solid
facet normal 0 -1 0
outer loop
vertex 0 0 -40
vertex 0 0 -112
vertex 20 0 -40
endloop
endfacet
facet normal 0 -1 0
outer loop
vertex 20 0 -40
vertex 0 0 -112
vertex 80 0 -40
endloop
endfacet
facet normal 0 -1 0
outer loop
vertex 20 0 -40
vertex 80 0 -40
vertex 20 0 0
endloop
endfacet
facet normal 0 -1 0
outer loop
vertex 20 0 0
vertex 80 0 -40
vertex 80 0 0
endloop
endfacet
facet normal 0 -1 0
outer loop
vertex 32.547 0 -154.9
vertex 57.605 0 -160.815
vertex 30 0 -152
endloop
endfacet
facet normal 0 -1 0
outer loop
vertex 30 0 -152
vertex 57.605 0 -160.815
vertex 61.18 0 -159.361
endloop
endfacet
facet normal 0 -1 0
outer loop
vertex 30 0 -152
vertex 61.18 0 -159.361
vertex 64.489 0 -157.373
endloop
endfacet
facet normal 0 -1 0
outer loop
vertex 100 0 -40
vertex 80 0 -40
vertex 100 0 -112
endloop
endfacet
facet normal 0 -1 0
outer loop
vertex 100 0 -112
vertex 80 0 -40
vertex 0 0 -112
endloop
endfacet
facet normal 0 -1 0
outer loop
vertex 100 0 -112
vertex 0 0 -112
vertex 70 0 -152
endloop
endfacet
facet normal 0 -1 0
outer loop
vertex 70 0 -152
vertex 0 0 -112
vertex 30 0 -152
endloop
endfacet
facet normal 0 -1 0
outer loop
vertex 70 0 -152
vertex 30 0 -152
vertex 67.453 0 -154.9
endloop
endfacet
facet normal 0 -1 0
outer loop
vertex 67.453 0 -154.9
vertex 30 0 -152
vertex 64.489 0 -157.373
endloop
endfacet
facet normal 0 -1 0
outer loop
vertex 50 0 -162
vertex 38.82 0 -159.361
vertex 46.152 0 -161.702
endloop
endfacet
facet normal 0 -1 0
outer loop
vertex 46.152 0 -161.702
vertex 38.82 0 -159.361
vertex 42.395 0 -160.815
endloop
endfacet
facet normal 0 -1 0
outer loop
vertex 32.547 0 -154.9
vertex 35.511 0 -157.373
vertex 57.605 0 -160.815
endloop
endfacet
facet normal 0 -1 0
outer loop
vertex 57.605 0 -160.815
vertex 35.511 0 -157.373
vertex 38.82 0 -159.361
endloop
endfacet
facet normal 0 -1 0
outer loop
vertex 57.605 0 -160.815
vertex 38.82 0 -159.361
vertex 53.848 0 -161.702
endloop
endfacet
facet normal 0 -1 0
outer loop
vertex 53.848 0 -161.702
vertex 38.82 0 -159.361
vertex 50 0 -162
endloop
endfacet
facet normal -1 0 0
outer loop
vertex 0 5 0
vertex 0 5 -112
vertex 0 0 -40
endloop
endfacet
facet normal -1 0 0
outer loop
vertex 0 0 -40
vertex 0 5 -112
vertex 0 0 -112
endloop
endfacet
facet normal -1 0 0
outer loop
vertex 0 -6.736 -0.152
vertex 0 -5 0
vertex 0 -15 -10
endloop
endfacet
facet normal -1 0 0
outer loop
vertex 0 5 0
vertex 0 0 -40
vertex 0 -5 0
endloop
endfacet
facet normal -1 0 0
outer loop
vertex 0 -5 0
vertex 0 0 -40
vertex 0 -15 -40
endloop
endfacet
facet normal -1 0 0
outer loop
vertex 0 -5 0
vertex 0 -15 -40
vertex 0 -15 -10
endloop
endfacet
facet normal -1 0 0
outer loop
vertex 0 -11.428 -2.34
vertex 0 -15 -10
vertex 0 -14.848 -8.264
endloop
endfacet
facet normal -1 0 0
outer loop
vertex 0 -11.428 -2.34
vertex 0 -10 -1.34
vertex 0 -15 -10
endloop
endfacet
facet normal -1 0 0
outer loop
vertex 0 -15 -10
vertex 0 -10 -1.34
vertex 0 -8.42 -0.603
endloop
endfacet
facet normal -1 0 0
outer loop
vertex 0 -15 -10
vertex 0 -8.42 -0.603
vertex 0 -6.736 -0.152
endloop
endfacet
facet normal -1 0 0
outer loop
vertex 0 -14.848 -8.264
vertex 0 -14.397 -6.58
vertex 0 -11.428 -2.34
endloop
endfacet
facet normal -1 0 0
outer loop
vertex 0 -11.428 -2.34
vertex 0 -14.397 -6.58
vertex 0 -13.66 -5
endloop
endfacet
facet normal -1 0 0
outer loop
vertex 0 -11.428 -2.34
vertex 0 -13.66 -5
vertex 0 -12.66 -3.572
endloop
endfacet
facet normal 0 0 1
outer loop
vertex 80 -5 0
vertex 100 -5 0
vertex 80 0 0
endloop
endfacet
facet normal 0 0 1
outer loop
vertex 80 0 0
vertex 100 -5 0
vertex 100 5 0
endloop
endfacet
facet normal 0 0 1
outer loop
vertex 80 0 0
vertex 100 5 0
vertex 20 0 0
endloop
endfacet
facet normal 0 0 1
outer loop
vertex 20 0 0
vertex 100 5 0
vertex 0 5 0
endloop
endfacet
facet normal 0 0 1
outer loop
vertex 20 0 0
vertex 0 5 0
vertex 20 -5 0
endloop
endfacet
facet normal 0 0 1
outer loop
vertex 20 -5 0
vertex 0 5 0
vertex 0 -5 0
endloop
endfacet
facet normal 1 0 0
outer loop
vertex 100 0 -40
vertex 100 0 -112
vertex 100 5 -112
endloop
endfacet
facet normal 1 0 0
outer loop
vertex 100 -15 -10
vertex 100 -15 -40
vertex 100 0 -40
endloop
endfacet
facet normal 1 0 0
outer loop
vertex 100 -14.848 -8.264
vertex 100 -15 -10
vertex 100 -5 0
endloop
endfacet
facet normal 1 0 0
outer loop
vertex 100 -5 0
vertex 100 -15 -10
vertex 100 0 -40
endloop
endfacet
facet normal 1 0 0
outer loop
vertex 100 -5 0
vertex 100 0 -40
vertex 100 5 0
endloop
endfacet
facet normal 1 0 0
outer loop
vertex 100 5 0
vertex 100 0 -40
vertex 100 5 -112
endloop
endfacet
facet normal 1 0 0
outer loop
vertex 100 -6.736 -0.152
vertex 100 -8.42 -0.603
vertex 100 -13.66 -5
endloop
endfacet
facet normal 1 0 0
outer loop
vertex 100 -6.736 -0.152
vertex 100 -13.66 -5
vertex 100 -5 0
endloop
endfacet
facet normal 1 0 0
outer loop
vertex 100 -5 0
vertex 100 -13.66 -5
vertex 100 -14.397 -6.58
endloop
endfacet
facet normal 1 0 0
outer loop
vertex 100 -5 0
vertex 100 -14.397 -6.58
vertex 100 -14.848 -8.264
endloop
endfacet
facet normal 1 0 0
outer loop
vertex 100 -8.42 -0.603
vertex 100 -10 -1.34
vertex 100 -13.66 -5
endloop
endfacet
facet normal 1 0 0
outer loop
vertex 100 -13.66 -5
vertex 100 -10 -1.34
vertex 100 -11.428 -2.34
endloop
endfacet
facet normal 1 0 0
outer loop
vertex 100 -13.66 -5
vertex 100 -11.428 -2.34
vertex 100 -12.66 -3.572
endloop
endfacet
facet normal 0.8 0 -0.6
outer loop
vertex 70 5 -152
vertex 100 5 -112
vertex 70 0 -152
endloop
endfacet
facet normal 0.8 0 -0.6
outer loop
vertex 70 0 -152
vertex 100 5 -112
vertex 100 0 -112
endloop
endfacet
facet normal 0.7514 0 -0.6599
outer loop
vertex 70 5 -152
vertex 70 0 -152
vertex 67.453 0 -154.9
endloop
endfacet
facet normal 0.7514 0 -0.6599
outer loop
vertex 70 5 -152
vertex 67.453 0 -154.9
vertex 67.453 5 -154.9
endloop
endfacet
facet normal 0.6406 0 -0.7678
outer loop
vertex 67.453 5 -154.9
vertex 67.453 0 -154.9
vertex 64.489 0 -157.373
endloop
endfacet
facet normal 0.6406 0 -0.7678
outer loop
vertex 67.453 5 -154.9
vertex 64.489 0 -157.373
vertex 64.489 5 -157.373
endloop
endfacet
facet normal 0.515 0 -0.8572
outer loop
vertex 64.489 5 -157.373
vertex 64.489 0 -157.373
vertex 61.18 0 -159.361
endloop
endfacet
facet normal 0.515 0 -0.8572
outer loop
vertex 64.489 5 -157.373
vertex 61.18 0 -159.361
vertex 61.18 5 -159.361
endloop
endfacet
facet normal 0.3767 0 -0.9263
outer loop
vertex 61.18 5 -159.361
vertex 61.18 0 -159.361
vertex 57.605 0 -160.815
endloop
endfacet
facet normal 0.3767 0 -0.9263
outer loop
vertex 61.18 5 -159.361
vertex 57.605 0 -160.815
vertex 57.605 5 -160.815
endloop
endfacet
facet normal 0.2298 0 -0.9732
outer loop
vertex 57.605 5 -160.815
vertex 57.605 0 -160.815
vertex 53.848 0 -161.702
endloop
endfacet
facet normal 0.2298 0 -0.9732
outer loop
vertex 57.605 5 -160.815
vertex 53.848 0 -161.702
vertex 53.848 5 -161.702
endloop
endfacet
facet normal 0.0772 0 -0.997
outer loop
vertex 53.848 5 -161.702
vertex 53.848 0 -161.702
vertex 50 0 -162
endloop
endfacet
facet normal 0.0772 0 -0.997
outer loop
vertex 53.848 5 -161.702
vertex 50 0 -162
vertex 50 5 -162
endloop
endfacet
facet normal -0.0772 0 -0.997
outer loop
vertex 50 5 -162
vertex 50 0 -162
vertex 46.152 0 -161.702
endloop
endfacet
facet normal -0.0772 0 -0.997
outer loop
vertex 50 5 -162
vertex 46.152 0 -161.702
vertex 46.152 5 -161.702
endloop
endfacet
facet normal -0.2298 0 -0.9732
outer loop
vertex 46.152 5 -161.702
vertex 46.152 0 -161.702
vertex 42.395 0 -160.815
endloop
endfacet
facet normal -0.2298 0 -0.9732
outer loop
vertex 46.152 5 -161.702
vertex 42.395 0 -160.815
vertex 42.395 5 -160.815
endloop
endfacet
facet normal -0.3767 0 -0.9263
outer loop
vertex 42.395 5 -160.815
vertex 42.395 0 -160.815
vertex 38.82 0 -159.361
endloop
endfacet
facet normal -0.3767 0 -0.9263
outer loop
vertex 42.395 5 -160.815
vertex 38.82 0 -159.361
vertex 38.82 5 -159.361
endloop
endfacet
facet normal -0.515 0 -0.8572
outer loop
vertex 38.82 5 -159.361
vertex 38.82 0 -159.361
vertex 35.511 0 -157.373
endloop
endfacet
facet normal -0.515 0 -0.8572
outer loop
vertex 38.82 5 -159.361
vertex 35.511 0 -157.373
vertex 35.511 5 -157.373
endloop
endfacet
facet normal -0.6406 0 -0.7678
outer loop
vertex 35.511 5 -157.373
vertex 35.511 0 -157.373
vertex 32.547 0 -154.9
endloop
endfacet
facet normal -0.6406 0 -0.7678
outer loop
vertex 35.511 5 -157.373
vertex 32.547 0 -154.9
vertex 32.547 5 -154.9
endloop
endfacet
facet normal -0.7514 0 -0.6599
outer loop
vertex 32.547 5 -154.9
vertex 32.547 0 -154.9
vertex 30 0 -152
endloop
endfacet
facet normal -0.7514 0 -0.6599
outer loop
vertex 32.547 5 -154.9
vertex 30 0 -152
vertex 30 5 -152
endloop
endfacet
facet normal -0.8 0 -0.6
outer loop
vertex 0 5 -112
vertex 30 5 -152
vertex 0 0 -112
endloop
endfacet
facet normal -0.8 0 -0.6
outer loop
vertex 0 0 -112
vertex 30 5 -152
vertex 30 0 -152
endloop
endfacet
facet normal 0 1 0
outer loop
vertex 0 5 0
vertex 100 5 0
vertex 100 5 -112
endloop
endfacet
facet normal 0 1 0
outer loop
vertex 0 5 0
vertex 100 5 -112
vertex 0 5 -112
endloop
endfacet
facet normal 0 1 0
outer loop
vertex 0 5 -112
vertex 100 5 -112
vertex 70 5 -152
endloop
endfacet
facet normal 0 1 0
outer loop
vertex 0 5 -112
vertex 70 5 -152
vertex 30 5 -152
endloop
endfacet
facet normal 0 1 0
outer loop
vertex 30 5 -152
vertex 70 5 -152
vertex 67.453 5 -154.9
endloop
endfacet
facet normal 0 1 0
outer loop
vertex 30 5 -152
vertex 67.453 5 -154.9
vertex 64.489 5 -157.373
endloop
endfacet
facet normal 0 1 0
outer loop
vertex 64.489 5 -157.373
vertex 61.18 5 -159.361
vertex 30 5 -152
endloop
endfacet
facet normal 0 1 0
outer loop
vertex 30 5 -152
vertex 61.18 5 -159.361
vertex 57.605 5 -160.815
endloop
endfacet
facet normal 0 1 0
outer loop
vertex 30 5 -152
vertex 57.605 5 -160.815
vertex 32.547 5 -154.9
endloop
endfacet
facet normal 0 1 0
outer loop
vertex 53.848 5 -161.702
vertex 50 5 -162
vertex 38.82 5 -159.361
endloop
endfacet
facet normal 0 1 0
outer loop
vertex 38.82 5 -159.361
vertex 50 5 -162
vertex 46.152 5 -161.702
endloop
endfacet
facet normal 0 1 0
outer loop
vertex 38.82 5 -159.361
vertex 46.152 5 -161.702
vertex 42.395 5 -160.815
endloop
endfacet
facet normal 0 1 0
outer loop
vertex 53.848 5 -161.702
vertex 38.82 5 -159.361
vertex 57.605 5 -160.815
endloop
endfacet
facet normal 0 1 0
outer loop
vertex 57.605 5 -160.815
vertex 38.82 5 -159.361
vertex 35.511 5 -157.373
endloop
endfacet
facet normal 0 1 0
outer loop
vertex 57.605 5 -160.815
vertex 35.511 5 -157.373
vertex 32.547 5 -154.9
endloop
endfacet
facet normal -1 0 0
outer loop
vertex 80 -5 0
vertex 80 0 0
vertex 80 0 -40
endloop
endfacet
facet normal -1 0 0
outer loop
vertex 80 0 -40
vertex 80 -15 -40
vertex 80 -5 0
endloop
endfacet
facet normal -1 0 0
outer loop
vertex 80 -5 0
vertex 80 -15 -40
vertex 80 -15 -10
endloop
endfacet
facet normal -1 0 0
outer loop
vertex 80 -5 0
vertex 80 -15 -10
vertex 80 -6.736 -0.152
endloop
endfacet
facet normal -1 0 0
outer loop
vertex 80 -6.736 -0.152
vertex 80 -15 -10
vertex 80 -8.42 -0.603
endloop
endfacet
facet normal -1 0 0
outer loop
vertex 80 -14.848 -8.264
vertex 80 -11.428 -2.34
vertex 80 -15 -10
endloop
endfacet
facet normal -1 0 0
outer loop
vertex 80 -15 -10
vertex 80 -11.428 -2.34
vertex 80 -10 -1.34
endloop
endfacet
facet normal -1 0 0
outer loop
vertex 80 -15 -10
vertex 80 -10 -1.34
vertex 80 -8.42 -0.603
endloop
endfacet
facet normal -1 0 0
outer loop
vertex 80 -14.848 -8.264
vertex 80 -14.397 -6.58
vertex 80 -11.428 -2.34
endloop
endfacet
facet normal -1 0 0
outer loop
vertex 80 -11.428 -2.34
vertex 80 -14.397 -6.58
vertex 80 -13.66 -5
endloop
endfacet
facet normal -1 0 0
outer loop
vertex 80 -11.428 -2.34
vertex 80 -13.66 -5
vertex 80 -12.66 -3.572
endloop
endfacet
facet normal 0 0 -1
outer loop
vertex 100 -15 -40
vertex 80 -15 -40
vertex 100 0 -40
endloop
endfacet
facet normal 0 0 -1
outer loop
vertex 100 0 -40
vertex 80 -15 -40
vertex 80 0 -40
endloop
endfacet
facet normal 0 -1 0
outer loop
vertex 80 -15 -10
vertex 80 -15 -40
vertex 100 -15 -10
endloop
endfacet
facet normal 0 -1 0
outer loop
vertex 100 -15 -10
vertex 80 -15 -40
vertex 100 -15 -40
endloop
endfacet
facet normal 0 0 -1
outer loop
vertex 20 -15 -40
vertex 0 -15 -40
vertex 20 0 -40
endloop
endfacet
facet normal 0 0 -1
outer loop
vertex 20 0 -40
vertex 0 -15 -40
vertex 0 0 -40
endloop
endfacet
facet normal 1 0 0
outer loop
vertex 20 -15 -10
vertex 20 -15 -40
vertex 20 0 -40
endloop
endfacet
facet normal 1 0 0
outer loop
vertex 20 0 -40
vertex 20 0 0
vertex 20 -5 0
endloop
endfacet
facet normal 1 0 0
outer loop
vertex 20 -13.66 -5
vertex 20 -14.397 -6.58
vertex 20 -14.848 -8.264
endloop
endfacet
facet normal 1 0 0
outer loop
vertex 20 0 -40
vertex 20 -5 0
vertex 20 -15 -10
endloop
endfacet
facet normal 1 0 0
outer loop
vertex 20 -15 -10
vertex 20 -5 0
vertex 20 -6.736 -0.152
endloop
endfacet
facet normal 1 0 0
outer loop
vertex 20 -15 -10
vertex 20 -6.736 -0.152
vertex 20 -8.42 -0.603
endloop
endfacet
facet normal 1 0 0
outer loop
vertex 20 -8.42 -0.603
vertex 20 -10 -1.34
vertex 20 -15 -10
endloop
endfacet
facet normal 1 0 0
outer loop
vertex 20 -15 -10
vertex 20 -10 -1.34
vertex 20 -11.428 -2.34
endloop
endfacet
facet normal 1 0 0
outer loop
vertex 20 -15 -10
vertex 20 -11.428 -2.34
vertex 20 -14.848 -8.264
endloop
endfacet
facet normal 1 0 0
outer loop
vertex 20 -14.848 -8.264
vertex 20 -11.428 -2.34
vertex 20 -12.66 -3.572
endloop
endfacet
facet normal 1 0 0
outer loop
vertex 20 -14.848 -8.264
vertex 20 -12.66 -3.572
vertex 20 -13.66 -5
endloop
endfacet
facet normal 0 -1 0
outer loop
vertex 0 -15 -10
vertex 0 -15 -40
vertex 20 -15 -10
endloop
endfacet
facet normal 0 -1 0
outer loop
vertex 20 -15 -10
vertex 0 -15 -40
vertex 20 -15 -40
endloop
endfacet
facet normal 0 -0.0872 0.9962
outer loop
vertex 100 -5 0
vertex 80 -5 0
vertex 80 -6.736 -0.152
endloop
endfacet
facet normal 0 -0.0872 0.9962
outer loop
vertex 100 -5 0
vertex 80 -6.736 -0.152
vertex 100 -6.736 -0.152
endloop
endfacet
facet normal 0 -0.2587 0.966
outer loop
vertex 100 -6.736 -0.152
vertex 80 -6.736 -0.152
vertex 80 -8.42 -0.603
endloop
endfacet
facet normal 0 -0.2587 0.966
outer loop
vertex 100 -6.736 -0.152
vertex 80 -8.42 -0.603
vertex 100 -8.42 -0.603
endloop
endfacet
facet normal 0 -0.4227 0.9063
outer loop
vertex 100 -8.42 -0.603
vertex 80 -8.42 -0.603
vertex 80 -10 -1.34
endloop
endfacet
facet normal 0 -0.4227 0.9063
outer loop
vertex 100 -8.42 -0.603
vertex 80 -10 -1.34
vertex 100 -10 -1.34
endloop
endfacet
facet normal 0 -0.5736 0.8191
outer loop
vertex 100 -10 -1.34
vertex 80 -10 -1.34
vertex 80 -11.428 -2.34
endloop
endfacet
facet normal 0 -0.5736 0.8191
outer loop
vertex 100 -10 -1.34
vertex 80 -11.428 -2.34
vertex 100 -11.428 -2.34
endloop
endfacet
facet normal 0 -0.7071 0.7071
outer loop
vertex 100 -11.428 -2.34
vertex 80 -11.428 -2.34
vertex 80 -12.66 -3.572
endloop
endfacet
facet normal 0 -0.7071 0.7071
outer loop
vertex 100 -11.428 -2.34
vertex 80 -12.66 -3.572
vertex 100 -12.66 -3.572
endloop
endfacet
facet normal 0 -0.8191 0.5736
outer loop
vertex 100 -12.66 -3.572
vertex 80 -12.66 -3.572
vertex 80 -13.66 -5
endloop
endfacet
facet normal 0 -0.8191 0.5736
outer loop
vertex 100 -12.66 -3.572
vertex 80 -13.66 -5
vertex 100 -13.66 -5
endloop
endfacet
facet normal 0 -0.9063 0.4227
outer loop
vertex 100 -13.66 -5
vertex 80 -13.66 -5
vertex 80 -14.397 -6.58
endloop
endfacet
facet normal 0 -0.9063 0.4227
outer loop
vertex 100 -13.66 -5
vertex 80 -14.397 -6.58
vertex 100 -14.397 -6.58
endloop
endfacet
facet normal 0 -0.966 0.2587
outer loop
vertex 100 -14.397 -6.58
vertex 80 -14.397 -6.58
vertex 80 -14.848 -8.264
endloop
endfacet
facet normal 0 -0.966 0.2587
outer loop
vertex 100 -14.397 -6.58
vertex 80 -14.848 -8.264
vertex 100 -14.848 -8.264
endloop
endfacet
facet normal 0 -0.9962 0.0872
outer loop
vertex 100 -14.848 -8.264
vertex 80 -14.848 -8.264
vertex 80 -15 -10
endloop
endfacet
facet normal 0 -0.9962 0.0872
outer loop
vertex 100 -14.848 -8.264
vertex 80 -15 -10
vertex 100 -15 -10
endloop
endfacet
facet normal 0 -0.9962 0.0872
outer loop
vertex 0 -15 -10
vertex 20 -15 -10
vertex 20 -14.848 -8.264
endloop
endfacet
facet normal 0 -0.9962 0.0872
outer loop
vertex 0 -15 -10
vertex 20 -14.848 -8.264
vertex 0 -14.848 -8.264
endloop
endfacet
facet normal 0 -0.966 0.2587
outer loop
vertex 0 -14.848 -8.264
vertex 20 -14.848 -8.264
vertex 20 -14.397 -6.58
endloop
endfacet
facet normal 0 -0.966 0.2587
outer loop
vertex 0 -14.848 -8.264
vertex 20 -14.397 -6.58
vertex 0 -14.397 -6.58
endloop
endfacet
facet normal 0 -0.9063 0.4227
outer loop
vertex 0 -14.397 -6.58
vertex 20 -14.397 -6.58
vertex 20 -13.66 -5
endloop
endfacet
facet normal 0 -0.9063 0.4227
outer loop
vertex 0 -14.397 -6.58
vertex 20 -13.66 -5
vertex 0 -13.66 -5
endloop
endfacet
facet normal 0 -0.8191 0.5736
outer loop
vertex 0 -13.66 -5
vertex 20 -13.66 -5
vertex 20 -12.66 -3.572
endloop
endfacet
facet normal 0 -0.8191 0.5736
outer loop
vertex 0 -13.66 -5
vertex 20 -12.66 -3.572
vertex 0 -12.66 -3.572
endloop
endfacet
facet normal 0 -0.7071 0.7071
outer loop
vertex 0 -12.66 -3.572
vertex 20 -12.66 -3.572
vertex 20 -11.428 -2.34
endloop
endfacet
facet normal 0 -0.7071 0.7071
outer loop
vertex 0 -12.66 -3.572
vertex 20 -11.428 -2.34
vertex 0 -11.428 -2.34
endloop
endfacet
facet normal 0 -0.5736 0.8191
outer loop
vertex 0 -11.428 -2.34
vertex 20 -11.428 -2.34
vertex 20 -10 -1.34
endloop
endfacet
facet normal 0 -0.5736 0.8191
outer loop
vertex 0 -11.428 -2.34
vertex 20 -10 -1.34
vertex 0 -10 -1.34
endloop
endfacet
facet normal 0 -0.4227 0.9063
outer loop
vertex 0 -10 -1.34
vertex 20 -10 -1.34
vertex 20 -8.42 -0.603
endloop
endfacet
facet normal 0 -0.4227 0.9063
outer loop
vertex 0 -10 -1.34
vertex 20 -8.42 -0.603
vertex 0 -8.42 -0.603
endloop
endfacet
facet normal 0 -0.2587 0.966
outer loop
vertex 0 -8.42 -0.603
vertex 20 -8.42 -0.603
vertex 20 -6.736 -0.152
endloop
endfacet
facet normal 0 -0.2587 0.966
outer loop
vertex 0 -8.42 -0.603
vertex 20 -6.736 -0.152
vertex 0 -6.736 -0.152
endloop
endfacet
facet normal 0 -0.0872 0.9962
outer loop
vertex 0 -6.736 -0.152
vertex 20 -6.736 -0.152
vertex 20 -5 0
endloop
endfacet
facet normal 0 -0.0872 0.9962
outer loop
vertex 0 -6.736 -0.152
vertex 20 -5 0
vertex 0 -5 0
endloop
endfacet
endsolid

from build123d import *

# Parameters (mm, degrees)
EXTRUDE_1_DEPTH = 5
SKETCH_2_W      = 20
SKETCH_2_H      = 40
EXTRUDE_3_DEPTH = 15
FILLET_1_R      = 10


with BuildPart() as part:
    # 草图1 → 凸台-拉伸1 (new body)
    with BuildSketch(Plane(origin=(0, 0, 0), x_dir=(1, 0, 0), z_dir=(0, 1, 0))):
        with BuildLine():
            Line((0, 0), (100, 0))
            Line((100, 0), (100, 112))
            Line((100, 112), (70, 152))
            ThreePointArc((70, 152), (50, 162), (30, 152))
            Line((30, 152), (0, 112))
            Line((0, 112), (0, 0))
        make_face()
    extrude(amount=EXTRUDE_1_DEPTH)

    # 草图2 → 凸台-拉伸3 (add)
    with BuildSketch(Plane.XZ):
        with Locations((90, -20)):
            Rectangle(SKETCH_2_W, SKETCH_2_H)
        with Locations((10, -20)):
            Rectangle(SKETCH_2_W, SKETCH_2_H)
    extrude(amount=EXTRUDE_3_DEPTH)

    # 圆角1
    fillet_1_edges = [part.edges().sort_by_distance(p)[0] for p in [
        (90, -15, 0),
        (10, -15, 0),
    ]]
    fillet(fillet_1_edges, radius=FILLET_1_R)


solid = part.part
